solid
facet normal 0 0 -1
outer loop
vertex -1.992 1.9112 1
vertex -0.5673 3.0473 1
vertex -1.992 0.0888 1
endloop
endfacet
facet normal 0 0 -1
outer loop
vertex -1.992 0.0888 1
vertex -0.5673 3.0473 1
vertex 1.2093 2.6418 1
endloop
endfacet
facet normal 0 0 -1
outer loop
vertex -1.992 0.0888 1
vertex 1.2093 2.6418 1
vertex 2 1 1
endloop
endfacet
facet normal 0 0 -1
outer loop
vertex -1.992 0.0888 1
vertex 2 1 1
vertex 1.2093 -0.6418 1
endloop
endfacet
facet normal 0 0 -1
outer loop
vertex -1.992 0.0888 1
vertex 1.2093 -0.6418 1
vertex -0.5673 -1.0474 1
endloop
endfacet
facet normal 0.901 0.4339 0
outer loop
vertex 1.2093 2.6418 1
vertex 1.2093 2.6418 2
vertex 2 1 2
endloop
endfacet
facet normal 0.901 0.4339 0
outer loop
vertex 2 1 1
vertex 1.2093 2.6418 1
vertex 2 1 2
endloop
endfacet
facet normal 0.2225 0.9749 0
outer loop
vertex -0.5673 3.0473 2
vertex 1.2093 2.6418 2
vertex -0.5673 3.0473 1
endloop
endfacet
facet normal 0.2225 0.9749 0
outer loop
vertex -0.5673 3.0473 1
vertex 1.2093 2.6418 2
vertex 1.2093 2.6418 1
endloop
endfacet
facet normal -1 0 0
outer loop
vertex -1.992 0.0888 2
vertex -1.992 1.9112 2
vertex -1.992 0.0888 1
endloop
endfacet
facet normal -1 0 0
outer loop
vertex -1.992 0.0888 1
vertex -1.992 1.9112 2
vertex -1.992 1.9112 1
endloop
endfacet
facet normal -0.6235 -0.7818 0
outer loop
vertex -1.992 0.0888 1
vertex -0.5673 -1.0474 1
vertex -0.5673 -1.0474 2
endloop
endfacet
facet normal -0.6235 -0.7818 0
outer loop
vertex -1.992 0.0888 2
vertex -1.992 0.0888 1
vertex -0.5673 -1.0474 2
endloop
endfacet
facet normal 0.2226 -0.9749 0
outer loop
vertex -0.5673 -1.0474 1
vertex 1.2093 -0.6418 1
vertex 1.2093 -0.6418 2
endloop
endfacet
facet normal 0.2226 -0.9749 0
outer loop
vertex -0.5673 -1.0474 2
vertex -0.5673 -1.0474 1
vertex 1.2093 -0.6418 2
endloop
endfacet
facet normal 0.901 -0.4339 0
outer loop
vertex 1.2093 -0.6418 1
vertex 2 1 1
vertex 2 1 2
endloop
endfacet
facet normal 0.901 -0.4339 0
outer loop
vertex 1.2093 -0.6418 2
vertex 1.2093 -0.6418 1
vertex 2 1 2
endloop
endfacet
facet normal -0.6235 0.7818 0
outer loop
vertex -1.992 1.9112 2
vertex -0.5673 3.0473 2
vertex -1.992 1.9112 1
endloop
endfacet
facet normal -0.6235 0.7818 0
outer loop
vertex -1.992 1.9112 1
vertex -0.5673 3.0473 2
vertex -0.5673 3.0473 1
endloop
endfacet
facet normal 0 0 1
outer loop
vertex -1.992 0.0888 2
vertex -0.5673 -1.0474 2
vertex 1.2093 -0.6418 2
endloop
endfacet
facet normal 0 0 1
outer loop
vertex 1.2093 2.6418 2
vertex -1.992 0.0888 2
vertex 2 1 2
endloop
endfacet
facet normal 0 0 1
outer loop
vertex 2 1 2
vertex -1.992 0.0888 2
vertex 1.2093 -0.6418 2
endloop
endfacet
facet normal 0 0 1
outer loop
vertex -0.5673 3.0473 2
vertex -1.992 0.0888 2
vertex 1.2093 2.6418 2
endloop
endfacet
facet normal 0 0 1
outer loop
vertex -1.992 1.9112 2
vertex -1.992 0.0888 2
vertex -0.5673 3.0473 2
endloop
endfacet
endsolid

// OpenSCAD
   translate([-0.1,1,1]) color([1,9,4])  cylinder(r=2.1); 

 translate([-1.1,1,1])  color([1,1,1]) polygon( [ [-0.5,0],[-2,4],[1,9],[4,4], [2.5,0] ] , [ [0,1,2,3,4] ]);  
 

 translate([0.1,1,1])  rotate([180,0,0])  color([1,1,1]) polygon( [ [-0.5,0],[-2,4],[1,9],[4,4], [2.5,0] ] , [ [0,1,2,3,4] ]);

 translate([-2.1,1,1])  rotate([180,0,0])  color([1,1,1]) polygon( [ [-0.5,0],[-2,4],[1,9],[4,4], [2.5,0] ] , [ [0,1,2,3,4] ]); ;

 translate([1,0,0]) polygon( [ [-0.5,0],[-2,3],[1,5],[4,3], [2.5,0] ] , [ [0,1,2,3,4] ]); 

 translate([-3,0,0])  polygon( [ [-0.5,0],[-2,3],[1,5],[4,3], [2.5,0] ] , [ [0,1,2,3,4] ]); 

translate([1,-3,0]) polygon( [ [-0.5,0],[-2,3],[1,5],[4,3], [2.5,0] ] , [ [0,1,2,3,4] ]);  

 translate([-3,-3,0]) polygon( [ [-0.5,0],[-2,3],[1,5],[4,3], [2.5,0] ] , [ [0,1,2,3,4] ]); 

 translate([1,-6,0]) polygon( [ [-0.5,0],[-2,3],[1,5],[4,3], [2.5,0] ] , [ [0,1,2,3,4] ]); 

 translate([-3,-6,0]) polygon( [ [-0.5,0],[-2,3],[1,5],[4,3], [2.5,0] ] , [ [0,1,2,3,4] ]); 

 translate([-1,3,0]) polygon( [ [-0.5,0],[-2,3],[1,5],[4,3], [2.5,0] ] , [ [0,1,2,3,4] ]);

 translate([-1,-9,0]) polygon( [ [-0.5,0],[-2,3],[1,5],[4,3], [2.5,0] ] , [ [0,1,2,3,4] ]); 

 translate([-1,-3,2])   polygon( [ [-0.5,0],[-2,3],[1,5],[4,3], [2.5,0] ] , [ [0,1,3,4,2] ]); 

 translate([-1,-4,2])   polygon( [ [-0.5,0],[-2,3],[1,5],[4,3], [2.5,0] ] , [ [0,1,3,4,2] ]); 

 translate([-1,-5,2])   polygon( [ [-0.5,0],[-2,3],[1,5],[4,3], [2.5,0] ] , [ [0,1,3,4,2] ]);
